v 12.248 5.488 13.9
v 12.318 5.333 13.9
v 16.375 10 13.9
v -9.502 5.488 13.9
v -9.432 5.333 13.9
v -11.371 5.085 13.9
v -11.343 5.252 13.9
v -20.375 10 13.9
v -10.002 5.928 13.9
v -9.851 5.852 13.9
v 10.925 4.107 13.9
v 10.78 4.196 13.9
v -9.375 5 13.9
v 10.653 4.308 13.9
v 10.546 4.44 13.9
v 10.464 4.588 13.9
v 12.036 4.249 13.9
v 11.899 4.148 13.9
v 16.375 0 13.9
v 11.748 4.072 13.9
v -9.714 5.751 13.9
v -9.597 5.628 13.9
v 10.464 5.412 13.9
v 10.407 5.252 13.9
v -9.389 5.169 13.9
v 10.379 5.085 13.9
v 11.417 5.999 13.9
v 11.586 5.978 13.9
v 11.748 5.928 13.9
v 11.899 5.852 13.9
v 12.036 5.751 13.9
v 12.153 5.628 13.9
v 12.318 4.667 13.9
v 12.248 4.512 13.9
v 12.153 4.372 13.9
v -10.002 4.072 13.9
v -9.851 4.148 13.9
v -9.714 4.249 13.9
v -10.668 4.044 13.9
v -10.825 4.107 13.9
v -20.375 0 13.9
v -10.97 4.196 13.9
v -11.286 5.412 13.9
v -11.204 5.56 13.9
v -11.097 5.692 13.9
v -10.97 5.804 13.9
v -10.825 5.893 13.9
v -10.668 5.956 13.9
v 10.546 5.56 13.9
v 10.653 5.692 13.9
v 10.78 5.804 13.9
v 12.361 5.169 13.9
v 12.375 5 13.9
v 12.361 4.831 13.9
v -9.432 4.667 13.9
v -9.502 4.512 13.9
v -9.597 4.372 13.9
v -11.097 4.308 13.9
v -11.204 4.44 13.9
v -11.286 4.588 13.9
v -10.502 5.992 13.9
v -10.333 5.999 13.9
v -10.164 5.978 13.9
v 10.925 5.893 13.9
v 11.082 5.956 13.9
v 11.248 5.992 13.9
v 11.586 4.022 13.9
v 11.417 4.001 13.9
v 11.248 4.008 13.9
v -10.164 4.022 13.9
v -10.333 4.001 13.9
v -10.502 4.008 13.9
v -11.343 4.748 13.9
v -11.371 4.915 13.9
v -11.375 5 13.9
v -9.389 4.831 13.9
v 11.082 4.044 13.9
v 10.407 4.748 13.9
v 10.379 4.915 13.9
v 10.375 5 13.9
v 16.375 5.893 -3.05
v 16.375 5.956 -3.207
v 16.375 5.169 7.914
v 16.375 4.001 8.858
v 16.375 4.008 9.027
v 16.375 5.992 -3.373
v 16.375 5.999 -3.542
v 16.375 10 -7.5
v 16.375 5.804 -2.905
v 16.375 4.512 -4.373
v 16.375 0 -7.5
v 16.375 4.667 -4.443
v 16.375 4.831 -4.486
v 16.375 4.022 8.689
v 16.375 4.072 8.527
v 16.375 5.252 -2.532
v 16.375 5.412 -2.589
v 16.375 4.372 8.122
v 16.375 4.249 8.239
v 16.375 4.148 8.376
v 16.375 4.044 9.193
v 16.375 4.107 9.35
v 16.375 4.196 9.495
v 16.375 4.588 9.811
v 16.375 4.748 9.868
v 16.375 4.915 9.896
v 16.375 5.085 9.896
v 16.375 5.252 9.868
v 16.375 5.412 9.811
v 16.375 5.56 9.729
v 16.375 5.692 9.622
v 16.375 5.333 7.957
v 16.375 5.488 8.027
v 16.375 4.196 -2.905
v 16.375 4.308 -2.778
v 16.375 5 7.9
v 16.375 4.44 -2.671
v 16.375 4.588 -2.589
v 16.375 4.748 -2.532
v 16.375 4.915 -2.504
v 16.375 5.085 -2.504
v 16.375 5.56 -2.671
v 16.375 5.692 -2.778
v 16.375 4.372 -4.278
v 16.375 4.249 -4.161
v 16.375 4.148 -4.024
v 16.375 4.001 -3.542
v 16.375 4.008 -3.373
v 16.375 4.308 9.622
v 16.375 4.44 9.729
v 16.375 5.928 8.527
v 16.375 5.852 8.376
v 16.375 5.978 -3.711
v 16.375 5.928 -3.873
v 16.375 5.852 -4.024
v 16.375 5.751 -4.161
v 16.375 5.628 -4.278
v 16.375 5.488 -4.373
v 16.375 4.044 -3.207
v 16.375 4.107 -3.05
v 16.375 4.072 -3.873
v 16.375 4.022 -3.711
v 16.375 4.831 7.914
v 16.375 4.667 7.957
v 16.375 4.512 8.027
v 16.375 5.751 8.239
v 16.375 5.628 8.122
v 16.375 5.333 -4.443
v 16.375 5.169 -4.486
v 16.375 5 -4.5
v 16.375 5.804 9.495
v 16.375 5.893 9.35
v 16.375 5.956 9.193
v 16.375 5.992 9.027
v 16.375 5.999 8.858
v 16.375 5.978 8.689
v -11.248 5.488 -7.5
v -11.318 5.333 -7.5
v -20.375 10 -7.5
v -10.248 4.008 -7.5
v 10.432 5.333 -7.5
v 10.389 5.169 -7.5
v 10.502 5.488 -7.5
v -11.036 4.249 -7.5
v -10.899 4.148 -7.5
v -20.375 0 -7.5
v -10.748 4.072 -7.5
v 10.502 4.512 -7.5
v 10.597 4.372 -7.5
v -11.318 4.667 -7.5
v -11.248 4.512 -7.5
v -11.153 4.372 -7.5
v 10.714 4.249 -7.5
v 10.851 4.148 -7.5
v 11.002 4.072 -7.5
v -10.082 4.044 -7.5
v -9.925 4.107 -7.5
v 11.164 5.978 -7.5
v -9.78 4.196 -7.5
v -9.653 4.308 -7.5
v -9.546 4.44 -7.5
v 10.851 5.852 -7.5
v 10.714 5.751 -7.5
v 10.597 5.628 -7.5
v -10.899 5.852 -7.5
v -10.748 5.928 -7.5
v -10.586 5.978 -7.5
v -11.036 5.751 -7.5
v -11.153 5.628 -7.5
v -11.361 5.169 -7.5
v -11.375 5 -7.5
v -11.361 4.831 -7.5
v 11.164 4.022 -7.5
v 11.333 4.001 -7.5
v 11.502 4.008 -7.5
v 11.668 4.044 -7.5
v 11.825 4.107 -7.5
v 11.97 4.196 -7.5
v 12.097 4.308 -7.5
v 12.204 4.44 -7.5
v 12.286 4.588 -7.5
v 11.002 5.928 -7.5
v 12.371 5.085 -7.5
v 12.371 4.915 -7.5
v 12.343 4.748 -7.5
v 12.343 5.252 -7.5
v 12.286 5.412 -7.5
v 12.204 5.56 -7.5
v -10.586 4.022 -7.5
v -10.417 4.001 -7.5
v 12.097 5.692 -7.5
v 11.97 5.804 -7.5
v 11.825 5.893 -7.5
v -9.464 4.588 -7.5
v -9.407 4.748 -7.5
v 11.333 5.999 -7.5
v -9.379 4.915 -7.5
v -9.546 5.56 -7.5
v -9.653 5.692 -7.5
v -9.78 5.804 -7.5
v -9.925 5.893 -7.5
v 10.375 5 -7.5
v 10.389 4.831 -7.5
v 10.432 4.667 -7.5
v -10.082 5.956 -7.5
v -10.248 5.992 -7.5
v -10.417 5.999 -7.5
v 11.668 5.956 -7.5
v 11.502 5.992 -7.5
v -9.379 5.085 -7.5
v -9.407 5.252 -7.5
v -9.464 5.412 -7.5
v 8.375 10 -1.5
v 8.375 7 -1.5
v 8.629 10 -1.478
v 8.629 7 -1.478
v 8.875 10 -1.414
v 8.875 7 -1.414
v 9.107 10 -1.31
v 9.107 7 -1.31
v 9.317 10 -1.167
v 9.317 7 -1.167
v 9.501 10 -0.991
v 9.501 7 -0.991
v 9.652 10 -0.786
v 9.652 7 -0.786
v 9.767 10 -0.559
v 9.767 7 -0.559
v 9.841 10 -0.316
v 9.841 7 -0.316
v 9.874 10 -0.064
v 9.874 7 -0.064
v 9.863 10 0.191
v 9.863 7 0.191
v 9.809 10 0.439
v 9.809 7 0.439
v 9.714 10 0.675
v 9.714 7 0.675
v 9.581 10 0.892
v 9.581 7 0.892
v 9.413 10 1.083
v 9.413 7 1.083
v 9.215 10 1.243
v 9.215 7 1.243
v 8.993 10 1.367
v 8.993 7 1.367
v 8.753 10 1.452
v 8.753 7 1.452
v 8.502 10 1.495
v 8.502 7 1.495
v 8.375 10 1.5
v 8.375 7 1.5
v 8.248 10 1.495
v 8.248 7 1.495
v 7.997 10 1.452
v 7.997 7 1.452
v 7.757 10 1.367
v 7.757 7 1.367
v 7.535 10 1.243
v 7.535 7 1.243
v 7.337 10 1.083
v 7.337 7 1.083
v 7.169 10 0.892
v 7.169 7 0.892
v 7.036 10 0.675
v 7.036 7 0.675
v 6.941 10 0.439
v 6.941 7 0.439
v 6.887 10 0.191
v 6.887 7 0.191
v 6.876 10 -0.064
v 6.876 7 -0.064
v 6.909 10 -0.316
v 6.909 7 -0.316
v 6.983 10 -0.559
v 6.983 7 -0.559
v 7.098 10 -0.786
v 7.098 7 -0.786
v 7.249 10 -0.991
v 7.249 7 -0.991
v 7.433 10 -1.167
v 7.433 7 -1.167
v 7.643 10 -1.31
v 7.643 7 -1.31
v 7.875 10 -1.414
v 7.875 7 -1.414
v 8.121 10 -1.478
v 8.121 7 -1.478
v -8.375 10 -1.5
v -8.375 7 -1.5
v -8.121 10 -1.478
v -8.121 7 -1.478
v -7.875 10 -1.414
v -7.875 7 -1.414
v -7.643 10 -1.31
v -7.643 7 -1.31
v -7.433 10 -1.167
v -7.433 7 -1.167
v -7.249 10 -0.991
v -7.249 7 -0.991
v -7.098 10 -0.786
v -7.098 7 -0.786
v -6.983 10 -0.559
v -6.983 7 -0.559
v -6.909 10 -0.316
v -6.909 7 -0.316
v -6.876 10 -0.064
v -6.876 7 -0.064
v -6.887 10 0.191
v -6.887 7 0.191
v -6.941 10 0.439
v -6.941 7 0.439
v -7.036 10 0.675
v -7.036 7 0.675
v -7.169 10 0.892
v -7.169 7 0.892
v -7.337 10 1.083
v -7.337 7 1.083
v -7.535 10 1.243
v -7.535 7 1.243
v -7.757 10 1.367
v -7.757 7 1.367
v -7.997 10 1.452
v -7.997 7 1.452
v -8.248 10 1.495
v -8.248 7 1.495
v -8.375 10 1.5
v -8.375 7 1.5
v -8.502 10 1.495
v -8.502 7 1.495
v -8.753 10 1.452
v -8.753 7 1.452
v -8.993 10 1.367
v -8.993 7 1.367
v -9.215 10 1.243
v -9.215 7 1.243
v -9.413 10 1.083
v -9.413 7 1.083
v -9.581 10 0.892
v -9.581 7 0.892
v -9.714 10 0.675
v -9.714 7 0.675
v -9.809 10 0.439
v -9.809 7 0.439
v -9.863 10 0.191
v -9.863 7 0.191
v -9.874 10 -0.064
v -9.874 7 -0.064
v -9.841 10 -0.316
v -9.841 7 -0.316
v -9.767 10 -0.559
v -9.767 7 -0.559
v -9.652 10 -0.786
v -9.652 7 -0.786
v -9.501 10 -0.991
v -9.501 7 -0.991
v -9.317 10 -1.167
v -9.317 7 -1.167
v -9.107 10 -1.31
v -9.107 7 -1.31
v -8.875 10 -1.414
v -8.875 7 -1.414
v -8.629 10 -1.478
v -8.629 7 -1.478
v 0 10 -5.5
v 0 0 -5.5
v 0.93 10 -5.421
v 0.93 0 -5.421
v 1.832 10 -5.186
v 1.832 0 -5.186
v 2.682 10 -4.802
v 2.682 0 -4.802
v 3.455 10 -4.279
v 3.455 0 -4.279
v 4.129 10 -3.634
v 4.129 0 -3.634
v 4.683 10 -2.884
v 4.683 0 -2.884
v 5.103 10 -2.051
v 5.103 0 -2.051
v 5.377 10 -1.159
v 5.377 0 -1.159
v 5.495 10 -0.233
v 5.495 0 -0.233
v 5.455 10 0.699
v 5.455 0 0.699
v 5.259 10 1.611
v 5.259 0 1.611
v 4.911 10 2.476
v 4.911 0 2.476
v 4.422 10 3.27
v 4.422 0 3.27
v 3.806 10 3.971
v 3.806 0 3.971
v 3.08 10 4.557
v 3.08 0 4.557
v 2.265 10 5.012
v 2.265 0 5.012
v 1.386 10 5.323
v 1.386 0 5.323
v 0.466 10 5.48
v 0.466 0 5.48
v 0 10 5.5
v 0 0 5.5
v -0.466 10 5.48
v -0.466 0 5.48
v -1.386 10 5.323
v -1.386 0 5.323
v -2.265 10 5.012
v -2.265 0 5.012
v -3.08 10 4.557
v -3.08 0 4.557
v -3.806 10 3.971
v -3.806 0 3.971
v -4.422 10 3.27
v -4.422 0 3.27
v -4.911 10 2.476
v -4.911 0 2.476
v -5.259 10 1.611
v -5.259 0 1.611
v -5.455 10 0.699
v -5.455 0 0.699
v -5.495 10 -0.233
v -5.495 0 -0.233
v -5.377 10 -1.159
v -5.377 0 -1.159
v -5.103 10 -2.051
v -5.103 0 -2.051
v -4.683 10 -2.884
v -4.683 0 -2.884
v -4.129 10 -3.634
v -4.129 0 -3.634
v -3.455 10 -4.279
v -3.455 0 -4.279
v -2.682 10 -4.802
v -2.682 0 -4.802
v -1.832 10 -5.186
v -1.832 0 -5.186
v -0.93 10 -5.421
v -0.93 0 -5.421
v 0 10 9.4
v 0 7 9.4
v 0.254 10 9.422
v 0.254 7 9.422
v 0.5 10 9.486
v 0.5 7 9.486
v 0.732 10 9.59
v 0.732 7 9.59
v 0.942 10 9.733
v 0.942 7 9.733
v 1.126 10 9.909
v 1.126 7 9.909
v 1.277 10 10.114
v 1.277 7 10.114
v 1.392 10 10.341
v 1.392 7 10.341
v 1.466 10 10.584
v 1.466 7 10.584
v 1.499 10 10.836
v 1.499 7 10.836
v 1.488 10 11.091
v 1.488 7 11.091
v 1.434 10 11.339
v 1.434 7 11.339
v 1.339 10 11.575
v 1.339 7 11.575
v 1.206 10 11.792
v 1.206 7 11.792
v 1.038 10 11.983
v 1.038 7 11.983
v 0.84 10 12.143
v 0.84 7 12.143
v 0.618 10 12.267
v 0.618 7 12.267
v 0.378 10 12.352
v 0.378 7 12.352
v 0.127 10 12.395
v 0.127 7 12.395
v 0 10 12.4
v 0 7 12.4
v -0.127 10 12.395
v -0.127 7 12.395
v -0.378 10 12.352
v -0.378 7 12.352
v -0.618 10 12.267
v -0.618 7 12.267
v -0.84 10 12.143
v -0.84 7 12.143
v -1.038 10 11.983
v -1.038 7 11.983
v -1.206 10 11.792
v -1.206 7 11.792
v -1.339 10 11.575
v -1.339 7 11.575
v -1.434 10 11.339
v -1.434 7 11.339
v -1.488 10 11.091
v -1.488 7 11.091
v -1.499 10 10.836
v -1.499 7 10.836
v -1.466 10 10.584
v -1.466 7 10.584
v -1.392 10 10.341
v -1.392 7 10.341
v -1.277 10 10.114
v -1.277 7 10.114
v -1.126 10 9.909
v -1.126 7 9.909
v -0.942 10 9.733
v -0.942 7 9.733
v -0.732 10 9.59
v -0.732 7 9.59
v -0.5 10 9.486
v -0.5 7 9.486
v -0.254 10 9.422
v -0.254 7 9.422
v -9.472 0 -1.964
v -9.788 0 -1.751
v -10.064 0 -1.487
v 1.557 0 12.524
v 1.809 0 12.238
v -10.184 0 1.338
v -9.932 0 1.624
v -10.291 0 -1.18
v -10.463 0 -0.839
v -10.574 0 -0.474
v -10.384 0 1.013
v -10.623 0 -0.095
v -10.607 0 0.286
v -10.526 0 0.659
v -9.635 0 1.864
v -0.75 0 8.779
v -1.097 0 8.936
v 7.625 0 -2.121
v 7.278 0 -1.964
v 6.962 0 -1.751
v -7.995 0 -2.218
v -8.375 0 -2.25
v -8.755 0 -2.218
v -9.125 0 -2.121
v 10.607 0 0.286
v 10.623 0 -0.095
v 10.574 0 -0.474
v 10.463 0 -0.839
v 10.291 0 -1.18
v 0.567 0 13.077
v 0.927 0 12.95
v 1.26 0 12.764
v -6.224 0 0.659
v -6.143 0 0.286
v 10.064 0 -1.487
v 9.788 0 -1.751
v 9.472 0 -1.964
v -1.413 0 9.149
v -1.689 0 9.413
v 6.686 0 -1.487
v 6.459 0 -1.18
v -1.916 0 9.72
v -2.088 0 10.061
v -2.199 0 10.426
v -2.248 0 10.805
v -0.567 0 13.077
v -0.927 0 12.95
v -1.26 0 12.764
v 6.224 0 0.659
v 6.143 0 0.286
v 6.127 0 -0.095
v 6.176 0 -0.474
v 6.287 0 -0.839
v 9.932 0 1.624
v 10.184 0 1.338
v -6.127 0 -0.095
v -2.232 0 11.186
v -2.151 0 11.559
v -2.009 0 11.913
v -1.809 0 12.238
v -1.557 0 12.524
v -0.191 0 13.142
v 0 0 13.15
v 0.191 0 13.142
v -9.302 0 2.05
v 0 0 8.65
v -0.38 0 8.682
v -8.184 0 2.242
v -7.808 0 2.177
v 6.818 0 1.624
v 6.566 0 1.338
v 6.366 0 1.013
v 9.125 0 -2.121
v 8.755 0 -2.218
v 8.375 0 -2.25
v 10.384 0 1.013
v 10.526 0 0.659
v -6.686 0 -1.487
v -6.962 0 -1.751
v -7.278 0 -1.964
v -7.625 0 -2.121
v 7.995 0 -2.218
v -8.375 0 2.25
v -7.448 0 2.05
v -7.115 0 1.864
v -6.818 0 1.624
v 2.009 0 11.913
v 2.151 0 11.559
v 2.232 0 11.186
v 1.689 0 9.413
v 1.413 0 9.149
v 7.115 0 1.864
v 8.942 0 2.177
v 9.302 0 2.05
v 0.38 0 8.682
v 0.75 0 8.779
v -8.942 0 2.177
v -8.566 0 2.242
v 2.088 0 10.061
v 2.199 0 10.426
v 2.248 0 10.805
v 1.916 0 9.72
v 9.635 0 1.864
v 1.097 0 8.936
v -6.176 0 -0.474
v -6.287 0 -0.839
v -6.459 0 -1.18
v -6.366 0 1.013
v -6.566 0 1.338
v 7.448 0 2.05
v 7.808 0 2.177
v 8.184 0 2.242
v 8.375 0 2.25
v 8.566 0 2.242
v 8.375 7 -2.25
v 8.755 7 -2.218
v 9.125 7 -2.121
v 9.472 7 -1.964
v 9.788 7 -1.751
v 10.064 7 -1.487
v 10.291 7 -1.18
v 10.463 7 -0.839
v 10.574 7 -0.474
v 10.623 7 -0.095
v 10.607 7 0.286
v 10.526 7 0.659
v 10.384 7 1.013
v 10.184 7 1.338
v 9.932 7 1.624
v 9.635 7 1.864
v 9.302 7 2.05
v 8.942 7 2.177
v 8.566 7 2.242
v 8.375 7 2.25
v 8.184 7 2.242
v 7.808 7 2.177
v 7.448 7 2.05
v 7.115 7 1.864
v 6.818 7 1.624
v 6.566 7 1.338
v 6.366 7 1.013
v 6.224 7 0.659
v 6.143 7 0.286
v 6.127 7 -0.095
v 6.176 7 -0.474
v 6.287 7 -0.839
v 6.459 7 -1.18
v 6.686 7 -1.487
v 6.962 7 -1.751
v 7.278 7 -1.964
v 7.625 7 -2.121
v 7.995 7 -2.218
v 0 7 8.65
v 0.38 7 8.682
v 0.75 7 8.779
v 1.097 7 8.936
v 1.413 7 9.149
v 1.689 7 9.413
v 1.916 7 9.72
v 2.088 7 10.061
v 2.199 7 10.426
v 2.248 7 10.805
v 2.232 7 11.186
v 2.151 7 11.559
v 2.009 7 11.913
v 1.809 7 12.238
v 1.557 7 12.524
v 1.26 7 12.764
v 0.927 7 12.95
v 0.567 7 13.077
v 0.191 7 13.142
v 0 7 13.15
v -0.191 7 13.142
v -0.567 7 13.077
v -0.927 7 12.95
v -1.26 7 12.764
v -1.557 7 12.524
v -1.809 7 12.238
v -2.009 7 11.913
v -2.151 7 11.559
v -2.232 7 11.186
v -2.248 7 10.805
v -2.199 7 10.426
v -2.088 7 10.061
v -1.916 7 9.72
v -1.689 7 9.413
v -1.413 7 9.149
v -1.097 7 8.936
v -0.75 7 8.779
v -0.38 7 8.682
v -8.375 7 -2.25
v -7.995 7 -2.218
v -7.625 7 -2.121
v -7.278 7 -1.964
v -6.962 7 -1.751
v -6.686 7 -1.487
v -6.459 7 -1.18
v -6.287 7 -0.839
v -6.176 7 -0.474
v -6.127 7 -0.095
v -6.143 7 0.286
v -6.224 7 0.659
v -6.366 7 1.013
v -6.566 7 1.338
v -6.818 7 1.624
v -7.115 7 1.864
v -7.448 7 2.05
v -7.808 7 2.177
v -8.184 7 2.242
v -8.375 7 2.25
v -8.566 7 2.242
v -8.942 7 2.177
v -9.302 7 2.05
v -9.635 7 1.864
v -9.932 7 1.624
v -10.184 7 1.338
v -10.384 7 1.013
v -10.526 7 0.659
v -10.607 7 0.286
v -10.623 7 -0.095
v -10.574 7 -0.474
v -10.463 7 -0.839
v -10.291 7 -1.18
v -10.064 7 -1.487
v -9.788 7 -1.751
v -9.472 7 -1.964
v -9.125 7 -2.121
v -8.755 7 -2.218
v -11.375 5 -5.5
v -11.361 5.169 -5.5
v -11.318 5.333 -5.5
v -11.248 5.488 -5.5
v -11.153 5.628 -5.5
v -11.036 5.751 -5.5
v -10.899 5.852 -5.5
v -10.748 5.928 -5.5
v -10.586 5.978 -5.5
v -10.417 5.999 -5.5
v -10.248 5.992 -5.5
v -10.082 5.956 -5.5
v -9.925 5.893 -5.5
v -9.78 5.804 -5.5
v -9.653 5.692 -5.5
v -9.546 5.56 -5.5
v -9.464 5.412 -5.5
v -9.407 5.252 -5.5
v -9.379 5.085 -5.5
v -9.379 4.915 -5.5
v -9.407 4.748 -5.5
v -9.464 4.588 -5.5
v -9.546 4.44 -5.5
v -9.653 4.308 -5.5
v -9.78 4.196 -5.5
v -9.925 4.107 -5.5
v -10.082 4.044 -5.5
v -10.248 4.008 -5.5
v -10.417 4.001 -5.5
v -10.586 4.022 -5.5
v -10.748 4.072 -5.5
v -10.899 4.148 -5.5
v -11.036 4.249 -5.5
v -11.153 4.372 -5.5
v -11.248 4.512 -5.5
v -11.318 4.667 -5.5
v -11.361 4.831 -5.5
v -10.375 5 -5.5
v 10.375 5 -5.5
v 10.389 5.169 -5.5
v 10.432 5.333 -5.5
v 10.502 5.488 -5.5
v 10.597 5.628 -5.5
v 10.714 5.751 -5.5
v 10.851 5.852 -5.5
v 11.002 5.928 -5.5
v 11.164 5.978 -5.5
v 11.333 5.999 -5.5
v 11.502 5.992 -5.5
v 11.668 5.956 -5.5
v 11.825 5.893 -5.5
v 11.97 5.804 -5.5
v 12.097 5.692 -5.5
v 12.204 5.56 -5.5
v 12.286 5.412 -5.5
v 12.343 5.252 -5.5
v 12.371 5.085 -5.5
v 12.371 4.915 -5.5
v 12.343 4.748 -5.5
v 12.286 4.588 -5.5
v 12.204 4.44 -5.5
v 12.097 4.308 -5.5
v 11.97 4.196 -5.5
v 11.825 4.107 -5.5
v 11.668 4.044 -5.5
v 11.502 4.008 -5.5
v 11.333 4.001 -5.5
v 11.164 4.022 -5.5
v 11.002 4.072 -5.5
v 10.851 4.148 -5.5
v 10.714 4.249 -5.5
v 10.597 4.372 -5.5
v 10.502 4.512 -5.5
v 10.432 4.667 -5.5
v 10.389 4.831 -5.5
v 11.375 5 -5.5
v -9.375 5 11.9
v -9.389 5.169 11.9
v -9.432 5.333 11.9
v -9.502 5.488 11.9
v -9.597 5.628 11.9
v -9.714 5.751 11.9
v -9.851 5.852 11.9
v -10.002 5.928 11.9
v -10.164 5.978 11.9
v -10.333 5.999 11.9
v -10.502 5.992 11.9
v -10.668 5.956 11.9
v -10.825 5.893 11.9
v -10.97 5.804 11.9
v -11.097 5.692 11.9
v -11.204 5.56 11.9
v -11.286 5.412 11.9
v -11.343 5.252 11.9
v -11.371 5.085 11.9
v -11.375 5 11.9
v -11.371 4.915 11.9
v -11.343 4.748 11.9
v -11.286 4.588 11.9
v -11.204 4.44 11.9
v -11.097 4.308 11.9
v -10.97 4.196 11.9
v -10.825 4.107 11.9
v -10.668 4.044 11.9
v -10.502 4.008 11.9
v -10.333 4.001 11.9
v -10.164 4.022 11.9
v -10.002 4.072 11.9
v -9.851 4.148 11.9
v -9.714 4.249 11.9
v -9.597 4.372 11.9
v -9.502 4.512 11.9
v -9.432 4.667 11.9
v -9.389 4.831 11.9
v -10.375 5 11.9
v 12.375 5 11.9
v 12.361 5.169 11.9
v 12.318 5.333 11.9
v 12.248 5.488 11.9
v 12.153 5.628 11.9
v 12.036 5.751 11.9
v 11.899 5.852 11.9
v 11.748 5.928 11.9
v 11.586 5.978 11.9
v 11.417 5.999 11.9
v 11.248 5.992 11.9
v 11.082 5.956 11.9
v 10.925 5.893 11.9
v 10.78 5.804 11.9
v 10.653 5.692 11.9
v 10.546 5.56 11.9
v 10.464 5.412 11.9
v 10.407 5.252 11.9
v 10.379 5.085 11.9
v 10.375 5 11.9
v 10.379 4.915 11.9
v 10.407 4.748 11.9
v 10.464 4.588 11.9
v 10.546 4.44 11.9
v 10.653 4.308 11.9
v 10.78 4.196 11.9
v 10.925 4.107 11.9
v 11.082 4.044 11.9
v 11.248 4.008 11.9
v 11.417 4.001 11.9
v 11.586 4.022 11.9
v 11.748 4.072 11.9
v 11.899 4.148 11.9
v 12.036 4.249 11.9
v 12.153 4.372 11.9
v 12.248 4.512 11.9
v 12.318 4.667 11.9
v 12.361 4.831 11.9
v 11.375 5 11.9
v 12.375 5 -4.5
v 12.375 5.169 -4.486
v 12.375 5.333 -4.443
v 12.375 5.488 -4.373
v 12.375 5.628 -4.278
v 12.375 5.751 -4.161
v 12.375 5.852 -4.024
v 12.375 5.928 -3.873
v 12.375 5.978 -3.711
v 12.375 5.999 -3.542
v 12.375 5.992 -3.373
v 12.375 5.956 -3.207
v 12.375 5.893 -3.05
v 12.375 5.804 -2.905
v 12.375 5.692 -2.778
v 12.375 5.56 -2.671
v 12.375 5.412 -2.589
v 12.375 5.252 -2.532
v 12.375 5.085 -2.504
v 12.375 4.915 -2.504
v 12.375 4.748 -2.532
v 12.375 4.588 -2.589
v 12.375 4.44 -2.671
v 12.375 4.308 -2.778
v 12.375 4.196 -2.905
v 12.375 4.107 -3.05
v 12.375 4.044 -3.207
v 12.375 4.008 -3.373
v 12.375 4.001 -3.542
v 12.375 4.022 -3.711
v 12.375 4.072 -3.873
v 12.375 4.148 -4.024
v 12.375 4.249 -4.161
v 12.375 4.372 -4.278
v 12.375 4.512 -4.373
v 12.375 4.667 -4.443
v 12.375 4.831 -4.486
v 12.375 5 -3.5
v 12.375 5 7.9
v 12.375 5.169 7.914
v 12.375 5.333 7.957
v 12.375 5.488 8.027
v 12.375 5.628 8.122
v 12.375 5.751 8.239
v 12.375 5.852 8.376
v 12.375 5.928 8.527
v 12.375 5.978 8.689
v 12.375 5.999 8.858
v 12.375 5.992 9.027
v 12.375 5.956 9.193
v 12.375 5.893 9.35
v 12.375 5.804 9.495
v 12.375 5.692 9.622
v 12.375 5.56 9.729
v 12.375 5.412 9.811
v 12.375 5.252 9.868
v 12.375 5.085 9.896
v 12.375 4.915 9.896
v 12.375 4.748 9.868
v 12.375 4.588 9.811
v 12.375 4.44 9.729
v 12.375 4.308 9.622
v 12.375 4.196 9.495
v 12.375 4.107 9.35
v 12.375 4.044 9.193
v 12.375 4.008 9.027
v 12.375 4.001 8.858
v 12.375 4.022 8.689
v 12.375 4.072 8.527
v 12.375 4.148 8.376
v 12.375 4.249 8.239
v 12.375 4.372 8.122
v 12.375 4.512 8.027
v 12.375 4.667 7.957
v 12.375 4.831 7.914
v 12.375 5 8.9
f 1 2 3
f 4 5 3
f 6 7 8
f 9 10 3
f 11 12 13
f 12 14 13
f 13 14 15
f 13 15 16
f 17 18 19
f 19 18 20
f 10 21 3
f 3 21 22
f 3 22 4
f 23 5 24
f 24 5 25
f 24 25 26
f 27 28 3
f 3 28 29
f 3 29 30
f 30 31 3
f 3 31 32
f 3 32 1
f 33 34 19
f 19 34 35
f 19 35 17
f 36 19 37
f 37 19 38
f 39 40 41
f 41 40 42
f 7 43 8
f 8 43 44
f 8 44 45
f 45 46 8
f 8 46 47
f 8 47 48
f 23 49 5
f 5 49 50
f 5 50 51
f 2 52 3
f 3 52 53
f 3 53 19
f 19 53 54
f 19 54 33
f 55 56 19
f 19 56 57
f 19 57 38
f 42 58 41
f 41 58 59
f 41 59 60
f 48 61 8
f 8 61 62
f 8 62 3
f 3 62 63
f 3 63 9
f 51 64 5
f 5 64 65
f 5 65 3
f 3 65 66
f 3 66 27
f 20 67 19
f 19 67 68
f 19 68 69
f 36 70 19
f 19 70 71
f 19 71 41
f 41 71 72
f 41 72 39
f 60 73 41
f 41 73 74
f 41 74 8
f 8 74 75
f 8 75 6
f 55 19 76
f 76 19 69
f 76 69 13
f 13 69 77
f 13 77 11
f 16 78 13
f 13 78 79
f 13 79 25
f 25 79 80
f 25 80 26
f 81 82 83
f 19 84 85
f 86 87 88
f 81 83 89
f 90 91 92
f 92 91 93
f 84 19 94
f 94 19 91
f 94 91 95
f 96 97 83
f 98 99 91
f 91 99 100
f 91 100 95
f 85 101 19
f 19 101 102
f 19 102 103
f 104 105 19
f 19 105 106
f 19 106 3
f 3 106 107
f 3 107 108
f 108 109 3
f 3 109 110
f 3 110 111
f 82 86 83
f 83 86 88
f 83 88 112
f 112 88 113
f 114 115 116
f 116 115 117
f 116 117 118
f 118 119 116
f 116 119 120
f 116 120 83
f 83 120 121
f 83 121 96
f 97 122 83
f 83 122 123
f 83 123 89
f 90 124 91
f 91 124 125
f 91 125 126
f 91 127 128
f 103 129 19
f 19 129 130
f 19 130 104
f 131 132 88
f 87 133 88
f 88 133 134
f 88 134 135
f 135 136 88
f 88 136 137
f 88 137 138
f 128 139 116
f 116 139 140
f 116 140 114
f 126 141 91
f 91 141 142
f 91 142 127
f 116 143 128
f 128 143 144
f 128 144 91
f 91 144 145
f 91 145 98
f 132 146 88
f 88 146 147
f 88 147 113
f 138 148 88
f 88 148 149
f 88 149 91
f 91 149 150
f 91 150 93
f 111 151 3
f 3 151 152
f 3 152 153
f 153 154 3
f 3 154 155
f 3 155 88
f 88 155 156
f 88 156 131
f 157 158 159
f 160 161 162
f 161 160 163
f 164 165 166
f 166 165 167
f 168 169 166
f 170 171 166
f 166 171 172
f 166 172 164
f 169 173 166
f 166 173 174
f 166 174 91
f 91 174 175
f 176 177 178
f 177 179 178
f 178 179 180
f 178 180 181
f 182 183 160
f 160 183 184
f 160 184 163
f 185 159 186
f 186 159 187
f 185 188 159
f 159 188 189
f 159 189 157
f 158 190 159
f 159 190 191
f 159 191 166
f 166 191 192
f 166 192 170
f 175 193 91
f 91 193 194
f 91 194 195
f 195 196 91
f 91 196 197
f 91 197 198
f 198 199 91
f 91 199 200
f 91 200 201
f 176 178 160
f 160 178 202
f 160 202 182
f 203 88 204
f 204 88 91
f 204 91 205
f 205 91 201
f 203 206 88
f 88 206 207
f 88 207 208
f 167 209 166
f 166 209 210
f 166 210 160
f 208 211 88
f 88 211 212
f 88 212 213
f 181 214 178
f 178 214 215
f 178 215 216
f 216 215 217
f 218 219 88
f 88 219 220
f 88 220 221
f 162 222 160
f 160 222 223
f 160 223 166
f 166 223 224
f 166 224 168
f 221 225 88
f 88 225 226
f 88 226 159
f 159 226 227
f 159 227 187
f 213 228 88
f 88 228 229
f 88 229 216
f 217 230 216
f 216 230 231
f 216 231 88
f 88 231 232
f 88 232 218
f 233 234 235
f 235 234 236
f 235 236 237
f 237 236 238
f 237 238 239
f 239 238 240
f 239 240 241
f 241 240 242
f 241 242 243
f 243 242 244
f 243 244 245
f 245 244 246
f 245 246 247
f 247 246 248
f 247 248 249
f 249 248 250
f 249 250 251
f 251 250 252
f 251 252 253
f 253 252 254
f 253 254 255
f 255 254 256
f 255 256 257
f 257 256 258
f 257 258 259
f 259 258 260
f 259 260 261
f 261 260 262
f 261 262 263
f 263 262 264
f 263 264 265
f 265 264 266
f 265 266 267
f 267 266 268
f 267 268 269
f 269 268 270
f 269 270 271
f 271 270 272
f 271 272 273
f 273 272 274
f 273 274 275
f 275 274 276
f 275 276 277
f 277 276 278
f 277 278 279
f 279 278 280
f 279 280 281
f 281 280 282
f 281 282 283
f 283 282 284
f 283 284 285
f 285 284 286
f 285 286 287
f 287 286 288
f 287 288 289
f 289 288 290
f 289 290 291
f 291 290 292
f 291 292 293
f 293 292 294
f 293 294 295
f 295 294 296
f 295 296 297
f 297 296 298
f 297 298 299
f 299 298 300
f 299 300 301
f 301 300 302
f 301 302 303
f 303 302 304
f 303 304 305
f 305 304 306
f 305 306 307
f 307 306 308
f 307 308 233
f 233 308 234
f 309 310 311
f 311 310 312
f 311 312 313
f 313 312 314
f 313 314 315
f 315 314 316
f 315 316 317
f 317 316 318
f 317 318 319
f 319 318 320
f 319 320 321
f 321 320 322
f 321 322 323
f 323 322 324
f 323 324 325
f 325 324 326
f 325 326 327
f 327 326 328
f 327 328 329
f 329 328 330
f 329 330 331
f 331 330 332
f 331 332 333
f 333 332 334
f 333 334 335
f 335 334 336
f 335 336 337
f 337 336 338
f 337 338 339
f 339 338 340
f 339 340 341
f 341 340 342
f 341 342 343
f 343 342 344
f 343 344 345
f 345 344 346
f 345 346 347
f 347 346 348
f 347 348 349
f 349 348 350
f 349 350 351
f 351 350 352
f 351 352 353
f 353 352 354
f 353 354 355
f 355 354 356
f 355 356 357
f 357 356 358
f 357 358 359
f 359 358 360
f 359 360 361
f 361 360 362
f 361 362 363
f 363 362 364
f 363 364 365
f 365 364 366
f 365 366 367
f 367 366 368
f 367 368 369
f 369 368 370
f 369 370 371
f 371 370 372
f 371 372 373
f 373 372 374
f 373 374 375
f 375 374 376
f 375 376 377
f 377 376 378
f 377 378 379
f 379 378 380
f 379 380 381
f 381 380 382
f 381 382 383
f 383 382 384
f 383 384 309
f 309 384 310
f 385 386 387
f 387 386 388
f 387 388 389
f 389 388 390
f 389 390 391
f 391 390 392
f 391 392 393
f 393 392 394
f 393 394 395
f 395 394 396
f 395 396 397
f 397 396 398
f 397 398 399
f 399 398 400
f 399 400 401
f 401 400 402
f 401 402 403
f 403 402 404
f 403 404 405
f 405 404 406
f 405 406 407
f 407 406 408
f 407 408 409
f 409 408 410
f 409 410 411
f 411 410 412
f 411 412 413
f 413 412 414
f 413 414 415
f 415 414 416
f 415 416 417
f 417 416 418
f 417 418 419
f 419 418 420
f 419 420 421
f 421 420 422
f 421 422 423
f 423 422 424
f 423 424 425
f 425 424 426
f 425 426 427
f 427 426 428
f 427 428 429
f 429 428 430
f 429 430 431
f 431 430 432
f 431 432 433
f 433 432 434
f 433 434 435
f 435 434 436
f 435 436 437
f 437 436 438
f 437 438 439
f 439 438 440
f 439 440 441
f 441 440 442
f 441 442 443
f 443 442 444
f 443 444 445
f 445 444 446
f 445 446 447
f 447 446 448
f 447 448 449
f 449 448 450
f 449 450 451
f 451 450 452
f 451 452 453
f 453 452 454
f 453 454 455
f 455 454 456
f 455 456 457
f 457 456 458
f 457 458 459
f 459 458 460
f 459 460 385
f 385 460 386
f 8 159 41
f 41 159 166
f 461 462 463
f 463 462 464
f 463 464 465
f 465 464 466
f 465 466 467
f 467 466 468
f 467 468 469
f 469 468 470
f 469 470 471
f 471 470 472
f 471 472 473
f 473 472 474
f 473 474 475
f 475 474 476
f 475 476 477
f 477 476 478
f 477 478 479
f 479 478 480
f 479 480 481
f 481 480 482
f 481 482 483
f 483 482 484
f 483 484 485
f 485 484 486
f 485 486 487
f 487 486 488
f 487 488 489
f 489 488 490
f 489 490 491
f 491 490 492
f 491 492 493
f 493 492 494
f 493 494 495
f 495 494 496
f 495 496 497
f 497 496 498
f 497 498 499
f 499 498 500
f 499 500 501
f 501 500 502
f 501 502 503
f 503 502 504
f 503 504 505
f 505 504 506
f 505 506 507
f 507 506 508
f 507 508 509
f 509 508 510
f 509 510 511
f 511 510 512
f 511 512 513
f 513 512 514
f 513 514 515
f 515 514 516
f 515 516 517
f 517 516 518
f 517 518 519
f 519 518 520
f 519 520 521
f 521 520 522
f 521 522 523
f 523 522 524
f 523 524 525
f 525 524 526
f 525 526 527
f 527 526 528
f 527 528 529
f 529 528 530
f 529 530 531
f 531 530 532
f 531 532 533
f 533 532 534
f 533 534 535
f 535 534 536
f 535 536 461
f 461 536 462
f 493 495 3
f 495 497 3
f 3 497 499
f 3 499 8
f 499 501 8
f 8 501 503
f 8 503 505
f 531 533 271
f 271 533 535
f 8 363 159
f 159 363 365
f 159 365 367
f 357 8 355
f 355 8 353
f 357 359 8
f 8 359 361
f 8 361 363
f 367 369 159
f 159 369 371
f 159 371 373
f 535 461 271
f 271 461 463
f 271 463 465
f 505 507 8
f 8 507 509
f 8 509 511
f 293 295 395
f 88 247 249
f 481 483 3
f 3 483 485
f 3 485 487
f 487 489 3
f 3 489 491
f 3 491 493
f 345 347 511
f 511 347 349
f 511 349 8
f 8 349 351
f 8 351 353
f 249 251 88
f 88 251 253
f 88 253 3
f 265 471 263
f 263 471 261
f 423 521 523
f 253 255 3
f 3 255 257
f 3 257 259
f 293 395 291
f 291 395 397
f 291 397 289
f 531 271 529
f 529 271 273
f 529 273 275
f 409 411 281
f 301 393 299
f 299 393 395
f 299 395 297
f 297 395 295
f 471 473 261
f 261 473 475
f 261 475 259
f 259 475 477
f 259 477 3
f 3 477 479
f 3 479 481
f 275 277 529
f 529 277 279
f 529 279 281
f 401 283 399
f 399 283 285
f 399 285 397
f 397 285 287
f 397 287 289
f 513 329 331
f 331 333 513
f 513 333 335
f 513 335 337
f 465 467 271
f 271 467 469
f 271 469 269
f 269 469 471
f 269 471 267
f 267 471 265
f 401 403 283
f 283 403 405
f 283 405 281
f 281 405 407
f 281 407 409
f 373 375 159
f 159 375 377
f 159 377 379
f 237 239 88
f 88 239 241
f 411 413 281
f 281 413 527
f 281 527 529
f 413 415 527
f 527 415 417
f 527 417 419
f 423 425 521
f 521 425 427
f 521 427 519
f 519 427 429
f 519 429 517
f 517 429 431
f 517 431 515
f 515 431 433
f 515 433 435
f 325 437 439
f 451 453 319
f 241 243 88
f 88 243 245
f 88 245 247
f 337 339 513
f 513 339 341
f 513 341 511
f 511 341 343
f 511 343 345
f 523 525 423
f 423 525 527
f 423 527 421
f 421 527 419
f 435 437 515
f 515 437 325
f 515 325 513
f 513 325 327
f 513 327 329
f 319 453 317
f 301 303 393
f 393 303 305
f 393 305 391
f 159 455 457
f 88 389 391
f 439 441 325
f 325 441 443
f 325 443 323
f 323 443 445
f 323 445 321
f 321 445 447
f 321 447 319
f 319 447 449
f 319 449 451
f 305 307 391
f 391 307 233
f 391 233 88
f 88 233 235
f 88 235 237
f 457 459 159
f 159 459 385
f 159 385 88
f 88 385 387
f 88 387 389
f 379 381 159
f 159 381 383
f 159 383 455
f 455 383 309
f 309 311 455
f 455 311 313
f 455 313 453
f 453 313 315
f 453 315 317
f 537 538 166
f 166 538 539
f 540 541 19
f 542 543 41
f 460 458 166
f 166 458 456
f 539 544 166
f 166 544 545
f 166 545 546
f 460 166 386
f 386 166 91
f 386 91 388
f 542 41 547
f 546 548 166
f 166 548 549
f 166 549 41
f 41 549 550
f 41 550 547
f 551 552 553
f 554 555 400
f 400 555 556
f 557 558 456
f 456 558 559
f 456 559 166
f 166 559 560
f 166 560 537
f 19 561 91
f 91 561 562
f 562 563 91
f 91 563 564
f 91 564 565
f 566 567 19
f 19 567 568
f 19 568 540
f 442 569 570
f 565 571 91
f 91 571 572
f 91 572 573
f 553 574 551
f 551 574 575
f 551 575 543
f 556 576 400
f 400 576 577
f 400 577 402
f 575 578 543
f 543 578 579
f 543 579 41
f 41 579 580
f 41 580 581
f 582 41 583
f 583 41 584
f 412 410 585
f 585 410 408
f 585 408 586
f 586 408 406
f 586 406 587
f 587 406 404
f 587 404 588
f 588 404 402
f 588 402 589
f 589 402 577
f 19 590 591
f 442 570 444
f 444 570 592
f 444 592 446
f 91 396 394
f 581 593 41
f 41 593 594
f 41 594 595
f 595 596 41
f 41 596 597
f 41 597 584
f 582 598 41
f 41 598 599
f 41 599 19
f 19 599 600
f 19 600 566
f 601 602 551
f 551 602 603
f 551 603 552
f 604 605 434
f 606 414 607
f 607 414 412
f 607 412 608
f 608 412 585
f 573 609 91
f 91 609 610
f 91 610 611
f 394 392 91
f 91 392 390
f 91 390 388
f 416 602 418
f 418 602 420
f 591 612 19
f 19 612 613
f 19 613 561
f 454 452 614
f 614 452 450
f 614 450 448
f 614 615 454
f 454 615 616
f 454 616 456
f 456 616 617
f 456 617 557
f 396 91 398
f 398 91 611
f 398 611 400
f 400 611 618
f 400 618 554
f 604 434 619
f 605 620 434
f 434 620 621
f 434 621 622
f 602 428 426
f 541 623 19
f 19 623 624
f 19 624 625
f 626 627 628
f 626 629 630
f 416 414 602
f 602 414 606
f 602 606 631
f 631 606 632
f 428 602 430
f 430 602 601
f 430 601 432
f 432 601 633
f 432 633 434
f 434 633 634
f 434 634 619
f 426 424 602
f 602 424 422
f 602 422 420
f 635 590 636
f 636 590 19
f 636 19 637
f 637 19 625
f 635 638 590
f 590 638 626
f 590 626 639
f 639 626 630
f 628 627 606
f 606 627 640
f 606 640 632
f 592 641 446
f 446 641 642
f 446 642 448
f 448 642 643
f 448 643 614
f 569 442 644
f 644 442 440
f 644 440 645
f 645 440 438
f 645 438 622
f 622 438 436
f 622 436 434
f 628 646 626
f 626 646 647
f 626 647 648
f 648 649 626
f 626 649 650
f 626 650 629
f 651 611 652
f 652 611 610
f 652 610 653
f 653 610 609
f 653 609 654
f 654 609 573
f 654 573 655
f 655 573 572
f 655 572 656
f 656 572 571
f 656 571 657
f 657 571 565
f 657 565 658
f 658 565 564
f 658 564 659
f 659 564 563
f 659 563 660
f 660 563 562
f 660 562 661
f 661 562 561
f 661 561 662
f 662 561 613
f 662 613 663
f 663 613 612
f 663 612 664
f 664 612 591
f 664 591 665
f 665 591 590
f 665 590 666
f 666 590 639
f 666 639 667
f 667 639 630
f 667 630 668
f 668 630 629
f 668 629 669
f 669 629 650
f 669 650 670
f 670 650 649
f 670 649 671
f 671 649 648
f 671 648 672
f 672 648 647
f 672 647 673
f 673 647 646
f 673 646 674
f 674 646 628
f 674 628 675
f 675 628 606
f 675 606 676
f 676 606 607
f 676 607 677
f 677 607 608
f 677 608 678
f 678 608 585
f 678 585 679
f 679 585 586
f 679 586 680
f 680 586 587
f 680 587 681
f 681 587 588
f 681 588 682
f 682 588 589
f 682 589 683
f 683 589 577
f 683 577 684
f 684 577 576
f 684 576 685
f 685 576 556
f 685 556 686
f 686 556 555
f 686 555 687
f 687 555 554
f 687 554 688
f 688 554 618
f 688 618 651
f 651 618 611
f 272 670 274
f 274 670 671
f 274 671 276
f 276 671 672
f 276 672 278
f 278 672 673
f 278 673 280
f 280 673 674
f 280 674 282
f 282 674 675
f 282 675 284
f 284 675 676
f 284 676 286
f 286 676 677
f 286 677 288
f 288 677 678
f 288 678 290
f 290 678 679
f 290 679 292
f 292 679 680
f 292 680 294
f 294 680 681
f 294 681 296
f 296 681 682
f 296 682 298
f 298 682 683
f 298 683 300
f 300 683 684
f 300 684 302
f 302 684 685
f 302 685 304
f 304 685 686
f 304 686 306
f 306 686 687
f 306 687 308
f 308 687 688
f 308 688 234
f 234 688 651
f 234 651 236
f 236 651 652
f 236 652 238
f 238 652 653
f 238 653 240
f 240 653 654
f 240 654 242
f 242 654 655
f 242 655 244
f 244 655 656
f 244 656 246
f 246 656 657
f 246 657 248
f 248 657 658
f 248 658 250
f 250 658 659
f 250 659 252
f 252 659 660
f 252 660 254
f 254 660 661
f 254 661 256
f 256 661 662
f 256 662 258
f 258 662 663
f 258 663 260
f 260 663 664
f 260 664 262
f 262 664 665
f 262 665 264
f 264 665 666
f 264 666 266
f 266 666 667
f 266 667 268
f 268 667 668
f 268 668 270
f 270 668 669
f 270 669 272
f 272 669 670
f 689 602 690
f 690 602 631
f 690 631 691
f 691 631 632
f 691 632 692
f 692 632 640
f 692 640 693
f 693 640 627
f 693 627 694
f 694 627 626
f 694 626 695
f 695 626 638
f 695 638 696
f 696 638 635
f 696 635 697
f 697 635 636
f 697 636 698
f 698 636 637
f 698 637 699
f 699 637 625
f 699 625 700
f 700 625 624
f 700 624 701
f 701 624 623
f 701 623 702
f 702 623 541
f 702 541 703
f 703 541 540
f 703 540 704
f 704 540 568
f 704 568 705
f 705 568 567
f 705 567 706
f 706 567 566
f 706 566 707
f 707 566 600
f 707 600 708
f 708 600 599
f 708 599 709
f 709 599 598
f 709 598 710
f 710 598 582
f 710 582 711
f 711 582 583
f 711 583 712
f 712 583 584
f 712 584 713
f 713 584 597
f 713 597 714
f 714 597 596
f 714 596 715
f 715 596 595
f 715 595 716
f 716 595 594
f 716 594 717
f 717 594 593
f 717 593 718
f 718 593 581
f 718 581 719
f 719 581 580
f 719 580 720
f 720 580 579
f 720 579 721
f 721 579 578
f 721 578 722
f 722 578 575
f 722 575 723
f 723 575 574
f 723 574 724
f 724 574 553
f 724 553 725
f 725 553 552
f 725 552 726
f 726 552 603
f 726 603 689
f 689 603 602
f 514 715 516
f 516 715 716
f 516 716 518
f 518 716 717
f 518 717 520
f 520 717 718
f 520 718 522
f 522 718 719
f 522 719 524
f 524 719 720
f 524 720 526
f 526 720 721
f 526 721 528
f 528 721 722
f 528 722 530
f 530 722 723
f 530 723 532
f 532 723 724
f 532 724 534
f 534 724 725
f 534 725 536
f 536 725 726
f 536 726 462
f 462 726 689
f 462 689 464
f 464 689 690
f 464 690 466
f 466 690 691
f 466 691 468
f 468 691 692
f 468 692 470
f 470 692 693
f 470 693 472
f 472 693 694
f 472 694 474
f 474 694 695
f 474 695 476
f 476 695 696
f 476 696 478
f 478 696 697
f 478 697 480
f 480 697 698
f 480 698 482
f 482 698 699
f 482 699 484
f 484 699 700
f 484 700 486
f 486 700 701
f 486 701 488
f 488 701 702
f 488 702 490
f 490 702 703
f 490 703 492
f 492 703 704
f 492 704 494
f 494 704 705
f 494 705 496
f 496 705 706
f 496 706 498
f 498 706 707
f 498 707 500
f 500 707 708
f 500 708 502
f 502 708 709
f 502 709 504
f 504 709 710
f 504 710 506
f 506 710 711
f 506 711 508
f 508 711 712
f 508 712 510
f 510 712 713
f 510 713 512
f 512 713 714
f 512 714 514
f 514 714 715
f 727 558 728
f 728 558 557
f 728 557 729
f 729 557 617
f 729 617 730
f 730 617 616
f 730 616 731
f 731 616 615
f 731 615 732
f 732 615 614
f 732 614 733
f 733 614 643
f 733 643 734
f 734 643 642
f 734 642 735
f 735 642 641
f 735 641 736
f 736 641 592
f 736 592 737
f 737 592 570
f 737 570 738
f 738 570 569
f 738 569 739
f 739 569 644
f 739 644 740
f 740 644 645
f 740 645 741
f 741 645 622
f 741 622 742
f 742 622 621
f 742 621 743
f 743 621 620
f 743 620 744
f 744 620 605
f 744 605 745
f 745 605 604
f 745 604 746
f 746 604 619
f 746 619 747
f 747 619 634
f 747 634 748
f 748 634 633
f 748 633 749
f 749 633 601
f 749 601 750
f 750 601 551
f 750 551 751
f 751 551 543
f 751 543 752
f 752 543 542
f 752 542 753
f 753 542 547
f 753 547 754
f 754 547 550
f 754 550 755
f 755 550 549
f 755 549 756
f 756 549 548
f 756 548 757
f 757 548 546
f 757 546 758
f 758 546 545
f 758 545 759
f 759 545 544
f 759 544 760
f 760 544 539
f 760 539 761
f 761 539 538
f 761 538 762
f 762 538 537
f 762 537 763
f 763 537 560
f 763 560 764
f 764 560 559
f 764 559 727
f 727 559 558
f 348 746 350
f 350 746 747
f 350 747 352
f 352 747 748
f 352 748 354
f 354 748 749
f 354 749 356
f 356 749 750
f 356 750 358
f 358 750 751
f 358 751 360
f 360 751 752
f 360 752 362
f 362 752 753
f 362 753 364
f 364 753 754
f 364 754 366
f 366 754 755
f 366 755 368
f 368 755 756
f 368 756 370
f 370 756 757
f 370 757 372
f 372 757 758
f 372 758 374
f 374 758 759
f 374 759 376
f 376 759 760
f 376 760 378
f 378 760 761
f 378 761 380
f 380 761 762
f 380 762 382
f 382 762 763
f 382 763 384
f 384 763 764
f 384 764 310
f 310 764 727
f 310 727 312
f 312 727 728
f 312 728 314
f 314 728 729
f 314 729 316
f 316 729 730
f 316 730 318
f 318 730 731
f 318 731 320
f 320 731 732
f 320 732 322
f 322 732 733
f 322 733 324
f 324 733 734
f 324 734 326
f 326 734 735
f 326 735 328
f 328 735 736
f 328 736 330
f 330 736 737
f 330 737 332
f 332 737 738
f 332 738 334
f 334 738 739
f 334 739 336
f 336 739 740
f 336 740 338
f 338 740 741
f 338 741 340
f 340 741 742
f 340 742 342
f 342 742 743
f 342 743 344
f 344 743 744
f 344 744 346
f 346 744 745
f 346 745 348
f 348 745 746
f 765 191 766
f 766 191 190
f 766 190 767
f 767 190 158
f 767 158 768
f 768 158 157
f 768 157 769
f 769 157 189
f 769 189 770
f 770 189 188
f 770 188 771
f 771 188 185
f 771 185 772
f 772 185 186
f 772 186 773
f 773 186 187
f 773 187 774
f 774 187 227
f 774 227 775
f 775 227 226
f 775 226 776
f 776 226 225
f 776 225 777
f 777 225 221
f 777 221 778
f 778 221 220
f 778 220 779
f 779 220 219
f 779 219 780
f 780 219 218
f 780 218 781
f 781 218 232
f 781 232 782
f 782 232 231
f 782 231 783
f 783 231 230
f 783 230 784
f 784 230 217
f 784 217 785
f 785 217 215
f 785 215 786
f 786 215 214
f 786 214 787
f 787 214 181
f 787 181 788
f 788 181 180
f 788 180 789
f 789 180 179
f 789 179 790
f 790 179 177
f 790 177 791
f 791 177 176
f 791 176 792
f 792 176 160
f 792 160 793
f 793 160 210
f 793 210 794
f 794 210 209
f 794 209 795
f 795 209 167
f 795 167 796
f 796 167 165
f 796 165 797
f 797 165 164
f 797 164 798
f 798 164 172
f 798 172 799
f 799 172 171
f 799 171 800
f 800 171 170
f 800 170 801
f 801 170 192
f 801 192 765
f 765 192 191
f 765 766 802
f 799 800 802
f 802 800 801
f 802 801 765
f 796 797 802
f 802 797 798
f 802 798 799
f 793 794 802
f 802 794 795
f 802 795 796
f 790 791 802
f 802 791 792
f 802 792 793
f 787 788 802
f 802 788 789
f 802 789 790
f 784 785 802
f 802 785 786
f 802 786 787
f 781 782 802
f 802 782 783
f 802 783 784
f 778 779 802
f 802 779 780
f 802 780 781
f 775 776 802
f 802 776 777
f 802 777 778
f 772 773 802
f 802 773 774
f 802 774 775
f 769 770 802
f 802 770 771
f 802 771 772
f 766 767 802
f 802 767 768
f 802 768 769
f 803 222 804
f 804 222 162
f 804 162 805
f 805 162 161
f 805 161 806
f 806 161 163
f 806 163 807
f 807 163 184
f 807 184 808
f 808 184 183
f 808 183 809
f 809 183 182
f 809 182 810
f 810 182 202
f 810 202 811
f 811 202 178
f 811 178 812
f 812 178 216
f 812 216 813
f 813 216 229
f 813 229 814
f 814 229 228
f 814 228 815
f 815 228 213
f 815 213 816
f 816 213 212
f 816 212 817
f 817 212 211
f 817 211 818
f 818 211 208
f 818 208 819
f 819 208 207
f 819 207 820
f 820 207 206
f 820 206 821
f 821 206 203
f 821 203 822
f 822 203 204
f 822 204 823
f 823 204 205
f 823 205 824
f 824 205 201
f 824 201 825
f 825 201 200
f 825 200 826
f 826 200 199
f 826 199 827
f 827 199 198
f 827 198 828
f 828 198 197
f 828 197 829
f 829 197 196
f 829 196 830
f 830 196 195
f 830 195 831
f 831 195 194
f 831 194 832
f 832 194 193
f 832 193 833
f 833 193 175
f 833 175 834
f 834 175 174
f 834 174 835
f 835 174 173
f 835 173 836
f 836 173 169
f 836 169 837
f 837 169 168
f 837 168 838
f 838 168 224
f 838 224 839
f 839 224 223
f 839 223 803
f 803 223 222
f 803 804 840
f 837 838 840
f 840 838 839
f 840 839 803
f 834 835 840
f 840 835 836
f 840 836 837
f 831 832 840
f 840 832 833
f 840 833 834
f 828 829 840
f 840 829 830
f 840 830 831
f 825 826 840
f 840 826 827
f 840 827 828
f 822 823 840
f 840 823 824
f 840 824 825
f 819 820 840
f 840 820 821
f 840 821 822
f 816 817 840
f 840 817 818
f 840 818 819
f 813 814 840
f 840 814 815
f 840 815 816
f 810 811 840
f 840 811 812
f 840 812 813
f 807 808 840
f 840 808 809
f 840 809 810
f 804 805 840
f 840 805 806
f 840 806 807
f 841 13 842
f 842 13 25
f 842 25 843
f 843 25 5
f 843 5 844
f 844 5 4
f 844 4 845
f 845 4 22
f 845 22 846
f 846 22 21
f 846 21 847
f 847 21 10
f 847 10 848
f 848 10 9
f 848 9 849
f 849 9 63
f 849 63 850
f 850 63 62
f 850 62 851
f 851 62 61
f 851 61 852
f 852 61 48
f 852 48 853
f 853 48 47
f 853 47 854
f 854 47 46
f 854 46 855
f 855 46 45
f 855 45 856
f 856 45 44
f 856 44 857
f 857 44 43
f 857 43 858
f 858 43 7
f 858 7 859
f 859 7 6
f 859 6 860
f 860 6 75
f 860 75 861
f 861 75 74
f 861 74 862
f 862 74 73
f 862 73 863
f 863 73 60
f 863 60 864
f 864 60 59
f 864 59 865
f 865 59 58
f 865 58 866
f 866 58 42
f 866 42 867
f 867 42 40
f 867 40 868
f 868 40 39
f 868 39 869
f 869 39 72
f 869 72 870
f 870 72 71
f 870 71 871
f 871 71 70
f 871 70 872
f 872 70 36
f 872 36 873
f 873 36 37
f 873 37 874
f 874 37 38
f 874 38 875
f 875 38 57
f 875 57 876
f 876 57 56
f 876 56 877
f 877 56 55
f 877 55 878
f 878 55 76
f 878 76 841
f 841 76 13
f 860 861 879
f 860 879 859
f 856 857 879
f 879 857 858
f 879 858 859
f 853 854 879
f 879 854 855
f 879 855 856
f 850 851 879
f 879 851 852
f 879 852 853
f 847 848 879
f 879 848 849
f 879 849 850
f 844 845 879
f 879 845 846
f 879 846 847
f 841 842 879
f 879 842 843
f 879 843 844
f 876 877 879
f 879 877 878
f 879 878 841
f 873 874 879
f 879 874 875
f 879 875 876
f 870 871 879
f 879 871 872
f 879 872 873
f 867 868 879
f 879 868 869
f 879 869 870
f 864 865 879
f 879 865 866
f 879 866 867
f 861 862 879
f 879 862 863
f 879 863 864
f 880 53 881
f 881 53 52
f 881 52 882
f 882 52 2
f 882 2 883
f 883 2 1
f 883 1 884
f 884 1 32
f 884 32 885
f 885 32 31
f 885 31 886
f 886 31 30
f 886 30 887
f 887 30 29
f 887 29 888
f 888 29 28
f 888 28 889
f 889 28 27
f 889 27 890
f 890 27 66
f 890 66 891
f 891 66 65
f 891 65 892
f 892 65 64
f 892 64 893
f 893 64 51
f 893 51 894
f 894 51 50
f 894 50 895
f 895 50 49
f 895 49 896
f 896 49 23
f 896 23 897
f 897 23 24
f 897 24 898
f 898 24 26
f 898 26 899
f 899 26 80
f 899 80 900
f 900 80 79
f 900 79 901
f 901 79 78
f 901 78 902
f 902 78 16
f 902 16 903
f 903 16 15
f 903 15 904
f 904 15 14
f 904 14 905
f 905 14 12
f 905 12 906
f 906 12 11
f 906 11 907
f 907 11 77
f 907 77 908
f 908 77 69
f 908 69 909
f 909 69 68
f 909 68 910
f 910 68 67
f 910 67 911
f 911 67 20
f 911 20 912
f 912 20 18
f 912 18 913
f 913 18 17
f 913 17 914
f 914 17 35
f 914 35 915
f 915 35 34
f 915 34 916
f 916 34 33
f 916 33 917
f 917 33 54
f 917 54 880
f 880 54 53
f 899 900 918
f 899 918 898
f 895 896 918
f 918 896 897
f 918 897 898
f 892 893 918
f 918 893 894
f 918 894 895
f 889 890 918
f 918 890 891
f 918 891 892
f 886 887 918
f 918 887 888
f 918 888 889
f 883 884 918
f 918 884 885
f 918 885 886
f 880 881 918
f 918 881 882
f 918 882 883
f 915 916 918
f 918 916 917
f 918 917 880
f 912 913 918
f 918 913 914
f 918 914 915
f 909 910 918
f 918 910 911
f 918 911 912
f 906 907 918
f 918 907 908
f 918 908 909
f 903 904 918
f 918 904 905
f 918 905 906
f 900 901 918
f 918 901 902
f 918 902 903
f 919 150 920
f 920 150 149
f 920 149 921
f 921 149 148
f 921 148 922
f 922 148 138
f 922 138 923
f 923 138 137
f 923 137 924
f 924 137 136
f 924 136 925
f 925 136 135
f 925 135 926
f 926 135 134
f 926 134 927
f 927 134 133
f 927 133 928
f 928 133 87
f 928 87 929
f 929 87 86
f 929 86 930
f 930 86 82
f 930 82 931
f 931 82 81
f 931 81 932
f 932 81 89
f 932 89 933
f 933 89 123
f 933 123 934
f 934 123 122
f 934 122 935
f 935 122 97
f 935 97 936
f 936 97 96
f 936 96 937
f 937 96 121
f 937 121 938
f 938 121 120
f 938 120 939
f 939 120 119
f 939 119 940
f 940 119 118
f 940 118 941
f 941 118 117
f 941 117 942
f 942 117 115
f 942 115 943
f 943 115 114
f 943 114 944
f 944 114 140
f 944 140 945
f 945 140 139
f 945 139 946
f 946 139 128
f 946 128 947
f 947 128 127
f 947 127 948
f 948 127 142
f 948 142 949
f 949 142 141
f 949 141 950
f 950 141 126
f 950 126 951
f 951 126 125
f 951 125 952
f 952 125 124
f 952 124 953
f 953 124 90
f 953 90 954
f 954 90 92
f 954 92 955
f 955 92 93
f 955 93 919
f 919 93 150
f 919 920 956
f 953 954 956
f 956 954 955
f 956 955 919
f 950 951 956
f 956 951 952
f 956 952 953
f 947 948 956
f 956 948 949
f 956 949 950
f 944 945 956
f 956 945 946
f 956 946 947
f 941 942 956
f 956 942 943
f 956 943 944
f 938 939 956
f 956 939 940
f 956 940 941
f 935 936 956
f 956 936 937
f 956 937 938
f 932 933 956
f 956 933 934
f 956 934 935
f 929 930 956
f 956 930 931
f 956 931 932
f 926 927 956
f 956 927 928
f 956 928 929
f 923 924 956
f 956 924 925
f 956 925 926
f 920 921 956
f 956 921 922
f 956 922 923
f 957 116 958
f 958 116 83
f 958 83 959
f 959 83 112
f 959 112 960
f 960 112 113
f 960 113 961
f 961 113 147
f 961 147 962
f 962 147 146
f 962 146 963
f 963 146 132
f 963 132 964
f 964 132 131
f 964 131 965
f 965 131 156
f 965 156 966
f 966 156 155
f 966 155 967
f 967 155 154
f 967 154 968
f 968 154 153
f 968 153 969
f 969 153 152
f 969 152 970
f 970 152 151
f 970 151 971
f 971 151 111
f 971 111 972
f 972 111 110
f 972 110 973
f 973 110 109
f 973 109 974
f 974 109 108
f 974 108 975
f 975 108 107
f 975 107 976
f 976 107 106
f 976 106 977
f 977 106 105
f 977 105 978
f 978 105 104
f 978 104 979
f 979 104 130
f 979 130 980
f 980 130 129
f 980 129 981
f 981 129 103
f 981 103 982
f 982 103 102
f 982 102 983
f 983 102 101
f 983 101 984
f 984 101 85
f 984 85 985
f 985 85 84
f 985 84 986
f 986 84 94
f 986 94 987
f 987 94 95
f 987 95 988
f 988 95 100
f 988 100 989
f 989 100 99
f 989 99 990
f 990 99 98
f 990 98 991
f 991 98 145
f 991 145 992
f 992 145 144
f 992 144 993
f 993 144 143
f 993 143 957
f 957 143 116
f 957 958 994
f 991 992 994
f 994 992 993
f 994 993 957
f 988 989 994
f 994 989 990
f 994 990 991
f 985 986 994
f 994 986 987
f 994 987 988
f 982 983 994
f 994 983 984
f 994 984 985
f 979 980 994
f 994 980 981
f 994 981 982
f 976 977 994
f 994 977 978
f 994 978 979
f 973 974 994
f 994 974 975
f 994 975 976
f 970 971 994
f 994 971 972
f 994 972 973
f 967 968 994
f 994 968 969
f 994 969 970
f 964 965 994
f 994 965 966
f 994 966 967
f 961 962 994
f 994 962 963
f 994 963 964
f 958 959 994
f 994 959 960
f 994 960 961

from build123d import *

# Parameters (mm, degrees)
SKETCH_1_W          = 36.75
SKETCH_1_H          = 21.4
SKETCH_1_R          = 1.5
EXTRUDE_1_DEPTH     = 10
SKETCH_1_16_R       = 2.25
CUT_EXTRUDE_1_DEPTH = 7
SKETCH_2_R          = 1
CUT_EXTRUDE_2_DEPTH = 2
CUT_EXTRUDE_START   = -19.4
SKETCH_2_2_R        = 1
CUT_EXTRUDE_3_DEPTH = 2
SKETCH_3_R          = 1
CUT_EXTRUDE_4_DEPTH = 4


with BuildPart() as part:
    # 草图1 → 凸台-拉伸1 (new body)
    with BuildSketch(Plane(origin=(0, 0, 0), x_dir=(1, 0, 0), z_dir=(0, 1, 0))):
        with Locations((-2, -3.2)):
            Rectangle(SKETCH_1_W, SKETCH_1_H)
        with Locations(Location((-8.375, 0, 0), (0, 0, 270))):
            Circle(SKETCH_1_R, mode=Mode.SUBTRACT)
        with BuildLine():
            ThreePointArc((5.5, 0), (0, -5.5), (-5.5, 0))
            ThreePointArc((-5.5, 0), (0, 5.5), (5.5, 0))
        make_face(mode=Mode.SUBTRACT)
        with Locations(Location((8.375, 0, 0), (0, 0, 270))):
            Circle(SKETCH_1_R, mode=Mode.SUBTRACT)
        with Locations(Location((0, -10.9, 0), (0, 0, 270))):
            Circle(SKETCH_1_R, mode=Mode.SUBTRACT)
    extrude(amount=EXTRUDE_1_DEPTH)

    # 草图1<16> → 切除-拉伸1 (cut)
    with BuildSketch(Plane(origin=(0, 0, 0), x_dir=(1, 0, 0), z_dir=(0, 1, 0))):
        with Locations(Location((-8.375, 0, 0), (0, 0, 270))):
            Circle(SKETCH_1_16_R)
        with Locations(Location((8.375, 0, 0), (0, 0, 270))):
            Circle(SKETCH_1_16_R)
        with Locations(Location((0, -10.9, 0), (0, 0, 270))):
            Circle(SKETCH_1_16_R)
    extrude(amount=CUT_EXTRUDE_1_DEPTH, mode=Mode.SUBTRACT)

    # 草图2 → 切除-拉伸2 (cut)
    with BuildSketch(Plane(origin=(0, 0, -7.5), x_dir=(-1, 0, 0), z_dir=(0, 0, -1))):
        with Locations((-11.375, 5)):
            Circle(SKETCH_2_R)
        with Locations((10.375, 5)):
            Circle(SKETCH_2_R)
    extrude(amount=-CUT_EXTRUDE_2_DEPTH, mode=Mode.SUBTRACT)

    # 草图2<2> → 切除-拉伸3 (cut)
    with BuildSketch(Plane(origin=(0, 0, -7.5), x_dir=(-1, 0, 0), z_dir=(0, 0, -1)).offset(CUT_EXTRUDE_START)):
        with Locations((-11.375, 5)):
            Circle(SKETCH_2_2_R)
        with Locations((10.375, 5)):
            Circle(SKETCH_2_2_R)
    extrude(amount=-CUT_EXTRUDE_3_DEPTH, mode=Mode.SUBTRACT)

    # 草图3 → 切除-拉伸4 (cut)
    with BuildSketch(Plane(origin=(16.375, 0, 0), x_dir=(0, 0, -1), z_dir=(1, 0, 0))):
        with Locations((-8.9, 5)):
            Circle(SKETCH_3_R)
        with Locations((3.5, 5)):
            Circle(SKETCH_3_R)
    extrude(amount=-CUT_EXTRUDE_4_DEPTH, mode=Mode.SUBTRACT)


solid = part.part
